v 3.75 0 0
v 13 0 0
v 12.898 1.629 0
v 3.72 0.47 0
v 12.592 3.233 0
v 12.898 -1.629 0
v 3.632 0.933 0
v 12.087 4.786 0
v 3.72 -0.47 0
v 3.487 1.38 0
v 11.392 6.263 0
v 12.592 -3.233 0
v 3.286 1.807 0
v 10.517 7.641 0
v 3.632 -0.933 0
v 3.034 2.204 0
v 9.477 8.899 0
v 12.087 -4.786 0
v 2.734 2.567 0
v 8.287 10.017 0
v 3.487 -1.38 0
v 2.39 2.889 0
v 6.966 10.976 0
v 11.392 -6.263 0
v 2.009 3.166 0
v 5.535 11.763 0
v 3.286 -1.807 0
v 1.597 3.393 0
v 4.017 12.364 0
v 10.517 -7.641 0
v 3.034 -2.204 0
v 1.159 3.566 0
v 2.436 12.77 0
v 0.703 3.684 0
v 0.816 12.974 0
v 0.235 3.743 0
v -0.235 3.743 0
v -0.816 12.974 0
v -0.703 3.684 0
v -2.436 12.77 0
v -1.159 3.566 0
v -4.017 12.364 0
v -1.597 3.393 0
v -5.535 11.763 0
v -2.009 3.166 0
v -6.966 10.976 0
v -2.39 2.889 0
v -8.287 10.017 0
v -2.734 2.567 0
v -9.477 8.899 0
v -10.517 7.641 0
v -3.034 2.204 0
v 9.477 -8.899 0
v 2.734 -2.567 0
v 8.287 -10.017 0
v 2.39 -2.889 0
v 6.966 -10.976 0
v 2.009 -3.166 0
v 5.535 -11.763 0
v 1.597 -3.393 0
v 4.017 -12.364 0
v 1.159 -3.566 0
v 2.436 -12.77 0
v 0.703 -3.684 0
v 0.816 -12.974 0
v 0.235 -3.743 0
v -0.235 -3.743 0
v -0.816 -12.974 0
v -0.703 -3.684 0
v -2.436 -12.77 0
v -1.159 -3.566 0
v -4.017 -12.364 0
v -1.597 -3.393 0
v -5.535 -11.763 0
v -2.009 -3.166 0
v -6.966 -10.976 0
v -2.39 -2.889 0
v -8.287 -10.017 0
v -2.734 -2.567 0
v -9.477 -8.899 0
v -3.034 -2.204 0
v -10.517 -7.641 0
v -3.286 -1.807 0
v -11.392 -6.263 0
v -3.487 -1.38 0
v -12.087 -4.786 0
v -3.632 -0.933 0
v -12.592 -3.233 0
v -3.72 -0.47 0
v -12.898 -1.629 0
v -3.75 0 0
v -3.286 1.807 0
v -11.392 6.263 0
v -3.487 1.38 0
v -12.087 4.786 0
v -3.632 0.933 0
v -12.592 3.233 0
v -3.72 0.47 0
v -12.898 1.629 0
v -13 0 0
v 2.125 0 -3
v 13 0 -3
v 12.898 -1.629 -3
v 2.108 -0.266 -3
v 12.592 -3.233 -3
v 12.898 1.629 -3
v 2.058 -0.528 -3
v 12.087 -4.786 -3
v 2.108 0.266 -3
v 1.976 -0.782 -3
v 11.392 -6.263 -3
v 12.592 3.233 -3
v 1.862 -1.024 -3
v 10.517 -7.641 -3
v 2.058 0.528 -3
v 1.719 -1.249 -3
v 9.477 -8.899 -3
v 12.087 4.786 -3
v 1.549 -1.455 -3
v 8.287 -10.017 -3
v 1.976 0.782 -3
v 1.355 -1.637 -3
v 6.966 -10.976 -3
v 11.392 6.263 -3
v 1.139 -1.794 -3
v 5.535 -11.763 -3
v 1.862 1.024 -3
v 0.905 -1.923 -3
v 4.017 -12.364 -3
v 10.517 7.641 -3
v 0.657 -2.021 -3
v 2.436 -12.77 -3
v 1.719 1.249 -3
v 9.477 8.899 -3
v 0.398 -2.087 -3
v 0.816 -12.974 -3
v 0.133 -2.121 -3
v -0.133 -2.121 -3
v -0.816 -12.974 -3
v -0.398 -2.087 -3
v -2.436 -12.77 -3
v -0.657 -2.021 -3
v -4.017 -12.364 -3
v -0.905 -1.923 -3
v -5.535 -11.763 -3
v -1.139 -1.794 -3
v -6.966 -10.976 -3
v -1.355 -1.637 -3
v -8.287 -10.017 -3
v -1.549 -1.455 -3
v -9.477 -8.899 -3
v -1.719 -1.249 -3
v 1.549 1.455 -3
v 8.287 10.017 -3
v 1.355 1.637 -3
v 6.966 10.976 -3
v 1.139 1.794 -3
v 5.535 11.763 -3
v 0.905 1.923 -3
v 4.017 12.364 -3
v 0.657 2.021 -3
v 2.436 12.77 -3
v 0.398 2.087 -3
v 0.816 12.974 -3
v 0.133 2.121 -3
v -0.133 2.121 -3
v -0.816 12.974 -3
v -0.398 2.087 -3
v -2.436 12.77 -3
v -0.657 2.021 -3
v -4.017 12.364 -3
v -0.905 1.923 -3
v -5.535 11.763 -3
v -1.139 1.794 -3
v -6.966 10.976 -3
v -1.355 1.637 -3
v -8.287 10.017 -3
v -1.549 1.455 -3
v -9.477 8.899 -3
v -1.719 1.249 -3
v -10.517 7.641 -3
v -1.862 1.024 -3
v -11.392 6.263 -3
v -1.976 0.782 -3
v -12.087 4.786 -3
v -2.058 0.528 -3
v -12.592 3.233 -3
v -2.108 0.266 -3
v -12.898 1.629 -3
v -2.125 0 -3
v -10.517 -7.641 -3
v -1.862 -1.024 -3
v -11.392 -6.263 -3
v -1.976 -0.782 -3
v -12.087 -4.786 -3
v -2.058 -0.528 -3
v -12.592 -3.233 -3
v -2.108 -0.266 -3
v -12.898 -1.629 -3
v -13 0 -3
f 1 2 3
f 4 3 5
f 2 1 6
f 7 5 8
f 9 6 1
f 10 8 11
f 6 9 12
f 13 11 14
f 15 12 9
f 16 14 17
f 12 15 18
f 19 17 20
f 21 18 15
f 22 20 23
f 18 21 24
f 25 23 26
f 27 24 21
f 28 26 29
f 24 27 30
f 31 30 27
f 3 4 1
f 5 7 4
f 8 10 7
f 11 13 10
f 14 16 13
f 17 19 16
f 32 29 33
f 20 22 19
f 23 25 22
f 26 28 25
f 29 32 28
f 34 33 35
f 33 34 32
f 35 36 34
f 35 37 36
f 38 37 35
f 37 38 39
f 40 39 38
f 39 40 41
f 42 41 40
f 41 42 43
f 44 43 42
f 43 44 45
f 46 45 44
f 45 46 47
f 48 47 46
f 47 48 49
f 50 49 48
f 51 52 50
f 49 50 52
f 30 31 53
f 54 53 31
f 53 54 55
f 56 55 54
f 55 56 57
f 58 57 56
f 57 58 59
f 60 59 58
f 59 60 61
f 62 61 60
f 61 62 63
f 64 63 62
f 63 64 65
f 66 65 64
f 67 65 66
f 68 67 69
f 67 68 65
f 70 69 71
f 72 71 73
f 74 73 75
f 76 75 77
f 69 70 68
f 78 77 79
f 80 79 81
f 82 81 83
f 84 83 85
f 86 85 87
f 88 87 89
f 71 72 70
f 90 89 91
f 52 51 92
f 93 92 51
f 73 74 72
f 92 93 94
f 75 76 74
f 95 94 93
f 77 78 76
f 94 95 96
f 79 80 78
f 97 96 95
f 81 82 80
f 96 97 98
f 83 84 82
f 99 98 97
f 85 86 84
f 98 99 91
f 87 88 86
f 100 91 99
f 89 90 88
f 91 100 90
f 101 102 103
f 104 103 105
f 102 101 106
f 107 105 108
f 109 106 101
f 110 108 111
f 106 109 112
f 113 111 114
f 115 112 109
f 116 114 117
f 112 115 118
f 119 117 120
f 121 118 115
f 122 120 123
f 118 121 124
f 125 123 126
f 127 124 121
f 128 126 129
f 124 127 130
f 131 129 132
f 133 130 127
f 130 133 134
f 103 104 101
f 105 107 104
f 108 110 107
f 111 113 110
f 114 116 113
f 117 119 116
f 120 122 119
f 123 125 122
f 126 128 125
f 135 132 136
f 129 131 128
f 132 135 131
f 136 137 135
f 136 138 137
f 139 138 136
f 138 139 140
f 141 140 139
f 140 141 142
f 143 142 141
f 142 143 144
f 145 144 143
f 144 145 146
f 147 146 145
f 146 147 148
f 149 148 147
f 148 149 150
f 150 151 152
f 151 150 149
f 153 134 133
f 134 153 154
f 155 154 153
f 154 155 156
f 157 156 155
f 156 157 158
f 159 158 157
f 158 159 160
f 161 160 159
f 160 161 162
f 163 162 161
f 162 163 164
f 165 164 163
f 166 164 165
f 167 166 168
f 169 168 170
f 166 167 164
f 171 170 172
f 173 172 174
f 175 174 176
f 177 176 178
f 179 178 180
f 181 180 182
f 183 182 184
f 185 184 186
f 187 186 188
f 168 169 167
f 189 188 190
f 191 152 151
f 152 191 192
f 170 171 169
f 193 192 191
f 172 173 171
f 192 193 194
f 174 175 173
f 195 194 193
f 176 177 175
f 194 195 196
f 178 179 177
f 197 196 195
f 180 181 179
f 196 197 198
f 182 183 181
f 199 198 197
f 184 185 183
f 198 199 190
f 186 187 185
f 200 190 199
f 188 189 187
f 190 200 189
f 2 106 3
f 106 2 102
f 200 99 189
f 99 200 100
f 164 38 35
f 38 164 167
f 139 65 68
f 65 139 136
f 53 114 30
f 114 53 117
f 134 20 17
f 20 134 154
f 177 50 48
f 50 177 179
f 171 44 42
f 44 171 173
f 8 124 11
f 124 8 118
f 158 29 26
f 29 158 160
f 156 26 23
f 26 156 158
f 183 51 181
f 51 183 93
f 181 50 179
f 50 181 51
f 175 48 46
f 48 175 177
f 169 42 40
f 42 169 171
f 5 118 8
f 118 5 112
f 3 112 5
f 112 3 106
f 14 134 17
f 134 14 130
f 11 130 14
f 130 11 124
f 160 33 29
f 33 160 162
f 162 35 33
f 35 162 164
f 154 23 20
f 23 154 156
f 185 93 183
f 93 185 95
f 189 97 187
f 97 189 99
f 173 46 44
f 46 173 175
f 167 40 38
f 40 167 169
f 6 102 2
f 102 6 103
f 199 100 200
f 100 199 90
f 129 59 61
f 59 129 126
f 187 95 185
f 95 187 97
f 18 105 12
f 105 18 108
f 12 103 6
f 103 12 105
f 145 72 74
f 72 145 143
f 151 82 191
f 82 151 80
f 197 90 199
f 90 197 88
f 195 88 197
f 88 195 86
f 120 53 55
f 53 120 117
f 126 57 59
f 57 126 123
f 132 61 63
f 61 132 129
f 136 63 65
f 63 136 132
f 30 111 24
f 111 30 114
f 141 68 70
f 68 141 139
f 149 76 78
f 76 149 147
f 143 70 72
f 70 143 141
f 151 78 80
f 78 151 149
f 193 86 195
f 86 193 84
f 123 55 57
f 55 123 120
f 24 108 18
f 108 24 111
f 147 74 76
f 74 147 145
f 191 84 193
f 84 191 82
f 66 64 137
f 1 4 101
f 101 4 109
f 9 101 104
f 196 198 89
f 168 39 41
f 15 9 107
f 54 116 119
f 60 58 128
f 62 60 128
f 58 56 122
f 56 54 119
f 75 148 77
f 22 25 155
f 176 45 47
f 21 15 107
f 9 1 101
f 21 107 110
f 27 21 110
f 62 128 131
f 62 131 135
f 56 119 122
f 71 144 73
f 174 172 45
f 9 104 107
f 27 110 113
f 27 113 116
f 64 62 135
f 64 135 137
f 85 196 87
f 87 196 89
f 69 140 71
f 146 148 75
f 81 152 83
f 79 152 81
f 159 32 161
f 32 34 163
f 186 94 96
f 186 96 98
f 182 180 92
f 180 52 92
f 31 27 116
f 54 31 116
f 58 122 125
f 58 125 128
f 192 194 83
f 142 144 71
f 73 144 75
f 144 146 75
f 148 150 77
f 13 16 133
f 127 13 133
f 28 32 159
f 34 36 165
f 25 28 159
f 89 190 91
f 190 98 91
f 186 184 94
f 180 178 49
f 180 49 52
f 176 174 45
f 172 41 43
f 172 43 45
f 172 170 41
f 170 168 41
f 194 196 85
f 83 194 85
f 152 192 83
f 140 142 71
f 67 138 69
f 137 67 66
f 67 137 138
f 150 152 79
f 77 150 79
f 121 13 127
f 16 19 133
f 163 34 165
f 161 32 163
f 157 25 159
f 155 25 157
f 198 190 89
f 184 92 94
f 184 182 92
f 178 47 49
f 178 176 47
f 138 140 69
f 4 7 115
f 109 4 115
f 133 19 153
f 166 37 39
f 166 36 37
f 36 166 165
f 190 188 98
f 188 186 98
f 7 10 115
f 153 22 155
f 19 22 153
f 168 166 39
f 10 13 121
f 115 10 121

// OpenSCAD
$fn = 50;


difference() {
	union() {
		translate(v = [0, 0, -3.0000000000]) {
			cylinder(h = 3, r = 7.0000000000);
		}
		translate(v = [0, 0, -3.0000000000]) {
			cylinder(h = 3, r = 13.0000000000);
		}
	}
	union() {
		translate(v = [0, 0, 0]) {
			rotate(a = [0, 0, 0]) {
				difference() {
					union() {
						#translate(v = [0, 0, -3.0000000000]) {
							cylinder(h = 3, r = 2.0000000000);
						}
						#translate(v = [0, 0, -3]) {
							cylinder(h = 3, r = 7.0000000000, r1 = 2.1250000000, r2 = 3.7500000000);
						}
						#translate(v = [0, 0, -3.0000000000]) {
							cylinder(h = 3, r = 2.1250000000);
						}
						#translate(v = [0, 0, -3.0000000000]) {
							cylinder(h = 3, r = 2.0000000000);
						}
					}
					union();
				}
			}
		}
	}
}
